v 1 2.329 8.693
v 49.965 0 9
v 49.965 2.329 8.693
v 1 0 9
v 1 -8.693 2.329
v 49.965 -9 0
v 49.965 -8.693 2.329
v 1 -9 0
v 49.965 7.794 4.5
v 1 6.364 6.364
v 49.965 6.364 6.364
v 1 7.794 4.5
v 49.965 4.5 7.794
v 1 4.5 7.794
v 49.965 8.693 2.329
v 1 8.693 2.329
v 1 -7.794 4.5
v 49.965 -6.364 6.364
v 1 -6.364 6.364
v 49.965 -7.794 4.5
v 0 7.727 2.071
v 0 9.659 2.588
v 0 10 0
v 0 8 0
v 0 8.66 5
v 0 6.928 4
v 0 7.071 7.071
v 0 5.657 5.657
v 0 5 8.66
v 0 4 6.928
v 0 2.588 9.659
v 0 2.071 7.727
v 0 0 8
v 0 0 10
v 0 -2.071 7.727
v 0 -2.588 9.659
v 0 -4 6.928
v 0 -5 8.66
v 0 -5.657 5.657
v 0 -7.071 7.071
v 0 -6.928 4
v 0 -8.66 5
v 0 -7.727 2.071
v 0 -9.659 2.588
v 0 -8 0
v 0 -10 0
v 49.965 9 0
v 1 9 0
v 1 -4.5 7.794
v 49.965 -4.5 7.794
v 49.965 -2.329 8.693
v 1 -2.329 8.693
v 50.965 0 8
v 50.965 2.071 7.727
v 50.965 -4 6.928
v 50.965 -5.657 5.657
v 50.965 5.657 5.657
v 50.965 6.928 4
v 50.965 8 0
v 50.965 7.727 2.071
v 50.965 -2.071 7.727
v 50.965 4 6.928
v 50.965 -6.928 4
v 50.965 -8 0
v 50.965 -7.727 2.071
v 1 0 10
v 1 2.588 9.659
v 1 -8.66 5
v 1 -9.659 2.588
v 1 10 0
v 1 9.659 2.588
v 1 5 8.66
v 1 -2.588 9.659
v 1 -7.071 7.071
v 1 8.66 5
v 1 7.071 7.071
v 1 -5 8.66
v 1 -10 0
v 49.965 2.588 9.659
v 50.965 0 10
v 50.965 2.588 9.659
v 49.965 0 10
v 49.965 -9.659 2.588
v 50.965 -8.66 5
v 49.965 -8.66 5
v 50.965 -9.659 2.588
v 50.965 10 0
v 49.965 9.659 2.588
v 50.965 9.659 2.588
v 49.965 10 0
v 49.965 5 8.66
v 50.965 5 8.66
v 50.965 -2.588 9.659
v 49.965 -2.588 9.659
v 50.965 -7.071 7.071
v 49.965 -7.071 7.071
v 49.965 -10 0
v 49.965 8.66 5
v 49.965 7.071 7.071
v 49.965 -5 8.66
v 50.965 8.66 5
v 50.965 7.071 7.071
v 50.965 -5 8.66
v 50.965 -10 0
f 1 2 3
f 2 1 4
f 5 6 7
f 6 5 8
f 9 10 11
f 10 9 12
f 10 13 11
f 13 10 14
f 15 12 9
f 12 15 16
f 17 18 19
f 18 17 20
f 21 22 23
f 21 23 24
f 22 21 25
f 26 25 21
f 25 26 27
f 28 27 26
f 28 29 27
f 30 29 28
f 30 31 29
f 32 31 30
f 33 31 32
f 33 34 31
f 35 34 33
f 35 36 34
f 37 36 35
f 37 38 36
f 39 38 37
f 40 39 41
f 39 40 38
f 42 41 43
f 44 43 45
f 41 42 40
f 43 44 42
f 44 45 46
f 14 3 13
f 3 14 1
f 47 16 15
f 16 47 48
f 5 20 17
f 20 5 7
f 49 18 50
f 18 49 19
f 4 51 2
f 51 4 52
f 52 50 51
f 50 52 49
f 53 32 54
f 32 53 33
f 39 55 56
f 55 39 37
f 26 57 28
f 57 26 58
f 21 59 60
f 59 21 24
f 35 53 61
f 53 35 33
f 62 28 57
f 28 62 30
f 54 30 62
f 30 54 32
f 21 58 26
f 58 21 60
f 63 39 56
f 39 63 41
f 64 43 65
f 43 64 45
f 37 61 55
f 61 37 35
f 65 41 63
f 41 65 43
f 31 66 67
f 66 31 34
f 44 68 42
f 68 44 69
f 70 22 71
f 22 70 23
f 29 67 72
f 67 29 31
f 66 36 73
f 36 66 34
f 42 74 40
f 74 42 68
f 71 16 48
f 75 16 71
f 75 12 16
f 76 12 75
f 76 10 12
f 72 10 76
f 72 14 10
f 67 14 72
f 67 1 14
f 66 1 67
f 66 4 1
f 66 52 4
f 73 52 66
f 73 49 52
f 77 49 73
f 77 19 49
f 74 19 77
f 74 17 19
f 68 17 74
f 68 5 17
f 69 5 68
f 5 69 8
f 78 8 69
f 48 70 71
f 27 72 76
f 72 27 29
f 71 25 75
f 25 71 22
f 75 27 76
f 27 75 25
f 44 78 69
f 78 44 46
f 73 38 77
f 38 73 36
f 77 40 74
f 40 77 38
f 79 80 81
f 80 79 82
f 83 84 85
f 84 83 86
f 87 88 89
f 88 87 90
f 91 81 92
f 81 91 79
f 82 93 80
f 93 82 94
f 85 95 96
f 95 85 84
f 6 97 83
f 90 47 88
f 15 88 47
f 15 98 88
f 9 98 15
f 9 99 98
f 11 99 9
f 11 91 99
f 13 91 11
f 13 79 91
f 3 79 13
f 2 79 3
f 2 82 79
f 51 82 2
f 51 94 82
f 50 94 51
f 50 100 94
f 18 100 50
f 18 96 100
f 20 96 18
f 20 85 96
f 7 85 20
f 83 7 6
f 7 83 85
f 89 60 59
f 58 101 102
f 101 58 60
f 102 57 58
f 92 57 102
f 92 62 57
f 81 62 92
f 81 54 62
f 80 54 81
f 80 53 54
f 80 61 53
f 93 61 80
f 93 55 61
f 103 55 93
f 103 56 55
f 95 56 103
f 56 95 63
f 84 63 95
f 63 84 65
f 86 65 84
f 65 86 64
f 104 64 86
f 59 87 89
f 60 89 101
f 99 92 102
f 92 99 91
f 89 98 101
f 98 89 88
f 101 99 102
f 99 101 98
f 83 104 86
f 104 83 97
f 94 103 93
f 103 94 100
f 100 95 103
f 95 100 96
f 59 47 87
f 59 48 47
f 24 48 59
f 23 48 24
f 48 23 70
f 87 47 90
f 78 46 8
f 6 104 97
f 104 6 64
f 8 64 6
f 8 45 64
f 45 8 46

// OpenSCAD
// file: ../build_environments.scad
// build_environments.scad: modules to build level sections
//

module pool(diameter=10.0, wall_height=2.0, step_width=3.0, connections=[])
{
    difference() {
        union() {
        difference() {
            cylinder(h=0.5,r1=diameter+step_width,r2=diameter+step_width,$fn=48);
            translate([0,0,-0.1])
                cylinder(h=0.7,r1=diameter,r2=diameter,$fn=48);
        }
        difference() {
            cylinder(h=wall_height,r1=diameter+step_width+1.0,r2=diameter+step_width+1.0,$fn=48);
            translate([0,0,-0.1])
                cylinder(h=wall_height+0.2,r1=diameter+step_width,r2=diameter+step_width,$fn=48);
        }
        }
    
        for (c = connections)
        {
            rotate([0,90,0]) {
                angle = atan2(c[1],c[0]);
                rotate([-angle,0,0]) {
                    cylinder(h=diameter+5.0,r1=c[2],r2=c[2],$fn=48);
                }
            }
        }
    }
}

module straight(length=10.0, width=2.0, dy1=0.0, dy2=0.0, dz=0.0)
{
    dims = [0, 0, 0, 0, 0, (dz/length)];
    matrix = [
        [ 1, dims[0], dims[1], 0 ],
        [ dims[2], 1, dims[4], 0 ],
        [ dims[5], dims[3], 1, 0 ],
        [ 0, 0, 0, 1 ]
    ];
    multmatrix(matrix)
    difference() {
        translate([dy1,0,0])
        union() {
            rotate([0,90,0]) {
                difference() {
                    cylinder(h=(length-dy1-dy2),r1=width+1.0,r2=width+1.0,$fn=24);
                    translate([0,0,-0.1])
                        cylinder(h=(length-dy1-dy2+0.2),r1=width,r2=width,$fn=24);
                }
                difference() {
                    cylinder(h=1.0,r1=width+2.0,r2=width+2.0,$fn=24);
                    translate([0,0,-0.1])
                        cylinder(h=1.2,r1=width,r2=width,$fn=24);
                }
                translate([0,0,(length-dy1-dy2)-1.0]) {
                    difference() {
                        cylinder(h=1.0,r1=width+2.0,r2=width+2.0,$fn=24);
                        translate([0,0,-0.1])
                            cylinder(h=1.2,r1=width,r2=width,$fn=24);
                    }
                }
            }
        }
        translate([0,0,-(2*width+4.0)/2])
            cube([3*length,3*length,2*width+4.0],center=true);
    }
}

module curve(p0=[0,0], center=[0,0], dir=1, angle=0.0, width=2.0)
{
    radius = sqrt((p0[0]-center[0])*(p0[0]-center[0]) + (p0[1]-center[1])*(p0[1]-center[1]));
    if (dir == 0) {
        difference() {
            rotate([0,0,-90])
            difference() {
                rotate_extrude(angle = angle, convexity = 10, $fn=32)
                    translate([radius, 0, 0])
                        circle(r = width+1.0,$fn=24);
                rotate([0,0,-1.0])
                    rotate_extrude(angle = angle+2.0, convexity = 10, $fn=32)
                        translate([radius, 0, 0])
                            circle(r = width,$fn=24);
            }
            translate([0,0,-(2*width+4.0)/2])
                cube([5*radius,5*radius,2*width+4.0],center=true);
        }
    }
    else {
        difference() {
            rotate([0,0,90])
            difference() {
                rotate_extrude(angle = -angle, convexity = 10, $fn=32)
                    translate([radius, 0, 0])
                        circle(r = width+1.0,$fn=24);
                rotate([0,0,1.0])
                    rotate_extrude(angle = -angle-2.0, convexity = 10, $fn=32)
                        translate([radius, 0, 0])
                            circle(r = width,$fn=24);
            }
            translate([0,0,-(2*width+4.0)/2])
                cube([5*radius,5*radius,2*width+4.0],center=true);
        }
    }

}

// test pool
//pool(diameter=12.0000, wall_height=3.0000, step_width=3.0000, connections=[[0.0000,-26.0000,2.0000], [23.6074,0.0000,2.0000]]);

// test straight, slope
//straight(length=26.0000, width=2.0000, dy1=11.8322, dy2=6.7082, dz=0.0000);
//straight(length=29.1549, width=12.0000, dy1=0.0000, dy2=0.0000, dz=-15.0000);

// test curve
//curve(p0=[23.6074, 0.0000], center=[23.6074, 5.0000], dir=0, angle=60.1011, width=2.0000);
//curve(p0=[33.6426, 12.4219], center=[37.9771, 9.9295], dir=1, angle=120.4627, width=2.0000);
// main file
use <../build_environments.scad>;
straight(length=50.9647, width=8.0000, dy1=0.0000, dy2=0.0000, dz=0.0000);
